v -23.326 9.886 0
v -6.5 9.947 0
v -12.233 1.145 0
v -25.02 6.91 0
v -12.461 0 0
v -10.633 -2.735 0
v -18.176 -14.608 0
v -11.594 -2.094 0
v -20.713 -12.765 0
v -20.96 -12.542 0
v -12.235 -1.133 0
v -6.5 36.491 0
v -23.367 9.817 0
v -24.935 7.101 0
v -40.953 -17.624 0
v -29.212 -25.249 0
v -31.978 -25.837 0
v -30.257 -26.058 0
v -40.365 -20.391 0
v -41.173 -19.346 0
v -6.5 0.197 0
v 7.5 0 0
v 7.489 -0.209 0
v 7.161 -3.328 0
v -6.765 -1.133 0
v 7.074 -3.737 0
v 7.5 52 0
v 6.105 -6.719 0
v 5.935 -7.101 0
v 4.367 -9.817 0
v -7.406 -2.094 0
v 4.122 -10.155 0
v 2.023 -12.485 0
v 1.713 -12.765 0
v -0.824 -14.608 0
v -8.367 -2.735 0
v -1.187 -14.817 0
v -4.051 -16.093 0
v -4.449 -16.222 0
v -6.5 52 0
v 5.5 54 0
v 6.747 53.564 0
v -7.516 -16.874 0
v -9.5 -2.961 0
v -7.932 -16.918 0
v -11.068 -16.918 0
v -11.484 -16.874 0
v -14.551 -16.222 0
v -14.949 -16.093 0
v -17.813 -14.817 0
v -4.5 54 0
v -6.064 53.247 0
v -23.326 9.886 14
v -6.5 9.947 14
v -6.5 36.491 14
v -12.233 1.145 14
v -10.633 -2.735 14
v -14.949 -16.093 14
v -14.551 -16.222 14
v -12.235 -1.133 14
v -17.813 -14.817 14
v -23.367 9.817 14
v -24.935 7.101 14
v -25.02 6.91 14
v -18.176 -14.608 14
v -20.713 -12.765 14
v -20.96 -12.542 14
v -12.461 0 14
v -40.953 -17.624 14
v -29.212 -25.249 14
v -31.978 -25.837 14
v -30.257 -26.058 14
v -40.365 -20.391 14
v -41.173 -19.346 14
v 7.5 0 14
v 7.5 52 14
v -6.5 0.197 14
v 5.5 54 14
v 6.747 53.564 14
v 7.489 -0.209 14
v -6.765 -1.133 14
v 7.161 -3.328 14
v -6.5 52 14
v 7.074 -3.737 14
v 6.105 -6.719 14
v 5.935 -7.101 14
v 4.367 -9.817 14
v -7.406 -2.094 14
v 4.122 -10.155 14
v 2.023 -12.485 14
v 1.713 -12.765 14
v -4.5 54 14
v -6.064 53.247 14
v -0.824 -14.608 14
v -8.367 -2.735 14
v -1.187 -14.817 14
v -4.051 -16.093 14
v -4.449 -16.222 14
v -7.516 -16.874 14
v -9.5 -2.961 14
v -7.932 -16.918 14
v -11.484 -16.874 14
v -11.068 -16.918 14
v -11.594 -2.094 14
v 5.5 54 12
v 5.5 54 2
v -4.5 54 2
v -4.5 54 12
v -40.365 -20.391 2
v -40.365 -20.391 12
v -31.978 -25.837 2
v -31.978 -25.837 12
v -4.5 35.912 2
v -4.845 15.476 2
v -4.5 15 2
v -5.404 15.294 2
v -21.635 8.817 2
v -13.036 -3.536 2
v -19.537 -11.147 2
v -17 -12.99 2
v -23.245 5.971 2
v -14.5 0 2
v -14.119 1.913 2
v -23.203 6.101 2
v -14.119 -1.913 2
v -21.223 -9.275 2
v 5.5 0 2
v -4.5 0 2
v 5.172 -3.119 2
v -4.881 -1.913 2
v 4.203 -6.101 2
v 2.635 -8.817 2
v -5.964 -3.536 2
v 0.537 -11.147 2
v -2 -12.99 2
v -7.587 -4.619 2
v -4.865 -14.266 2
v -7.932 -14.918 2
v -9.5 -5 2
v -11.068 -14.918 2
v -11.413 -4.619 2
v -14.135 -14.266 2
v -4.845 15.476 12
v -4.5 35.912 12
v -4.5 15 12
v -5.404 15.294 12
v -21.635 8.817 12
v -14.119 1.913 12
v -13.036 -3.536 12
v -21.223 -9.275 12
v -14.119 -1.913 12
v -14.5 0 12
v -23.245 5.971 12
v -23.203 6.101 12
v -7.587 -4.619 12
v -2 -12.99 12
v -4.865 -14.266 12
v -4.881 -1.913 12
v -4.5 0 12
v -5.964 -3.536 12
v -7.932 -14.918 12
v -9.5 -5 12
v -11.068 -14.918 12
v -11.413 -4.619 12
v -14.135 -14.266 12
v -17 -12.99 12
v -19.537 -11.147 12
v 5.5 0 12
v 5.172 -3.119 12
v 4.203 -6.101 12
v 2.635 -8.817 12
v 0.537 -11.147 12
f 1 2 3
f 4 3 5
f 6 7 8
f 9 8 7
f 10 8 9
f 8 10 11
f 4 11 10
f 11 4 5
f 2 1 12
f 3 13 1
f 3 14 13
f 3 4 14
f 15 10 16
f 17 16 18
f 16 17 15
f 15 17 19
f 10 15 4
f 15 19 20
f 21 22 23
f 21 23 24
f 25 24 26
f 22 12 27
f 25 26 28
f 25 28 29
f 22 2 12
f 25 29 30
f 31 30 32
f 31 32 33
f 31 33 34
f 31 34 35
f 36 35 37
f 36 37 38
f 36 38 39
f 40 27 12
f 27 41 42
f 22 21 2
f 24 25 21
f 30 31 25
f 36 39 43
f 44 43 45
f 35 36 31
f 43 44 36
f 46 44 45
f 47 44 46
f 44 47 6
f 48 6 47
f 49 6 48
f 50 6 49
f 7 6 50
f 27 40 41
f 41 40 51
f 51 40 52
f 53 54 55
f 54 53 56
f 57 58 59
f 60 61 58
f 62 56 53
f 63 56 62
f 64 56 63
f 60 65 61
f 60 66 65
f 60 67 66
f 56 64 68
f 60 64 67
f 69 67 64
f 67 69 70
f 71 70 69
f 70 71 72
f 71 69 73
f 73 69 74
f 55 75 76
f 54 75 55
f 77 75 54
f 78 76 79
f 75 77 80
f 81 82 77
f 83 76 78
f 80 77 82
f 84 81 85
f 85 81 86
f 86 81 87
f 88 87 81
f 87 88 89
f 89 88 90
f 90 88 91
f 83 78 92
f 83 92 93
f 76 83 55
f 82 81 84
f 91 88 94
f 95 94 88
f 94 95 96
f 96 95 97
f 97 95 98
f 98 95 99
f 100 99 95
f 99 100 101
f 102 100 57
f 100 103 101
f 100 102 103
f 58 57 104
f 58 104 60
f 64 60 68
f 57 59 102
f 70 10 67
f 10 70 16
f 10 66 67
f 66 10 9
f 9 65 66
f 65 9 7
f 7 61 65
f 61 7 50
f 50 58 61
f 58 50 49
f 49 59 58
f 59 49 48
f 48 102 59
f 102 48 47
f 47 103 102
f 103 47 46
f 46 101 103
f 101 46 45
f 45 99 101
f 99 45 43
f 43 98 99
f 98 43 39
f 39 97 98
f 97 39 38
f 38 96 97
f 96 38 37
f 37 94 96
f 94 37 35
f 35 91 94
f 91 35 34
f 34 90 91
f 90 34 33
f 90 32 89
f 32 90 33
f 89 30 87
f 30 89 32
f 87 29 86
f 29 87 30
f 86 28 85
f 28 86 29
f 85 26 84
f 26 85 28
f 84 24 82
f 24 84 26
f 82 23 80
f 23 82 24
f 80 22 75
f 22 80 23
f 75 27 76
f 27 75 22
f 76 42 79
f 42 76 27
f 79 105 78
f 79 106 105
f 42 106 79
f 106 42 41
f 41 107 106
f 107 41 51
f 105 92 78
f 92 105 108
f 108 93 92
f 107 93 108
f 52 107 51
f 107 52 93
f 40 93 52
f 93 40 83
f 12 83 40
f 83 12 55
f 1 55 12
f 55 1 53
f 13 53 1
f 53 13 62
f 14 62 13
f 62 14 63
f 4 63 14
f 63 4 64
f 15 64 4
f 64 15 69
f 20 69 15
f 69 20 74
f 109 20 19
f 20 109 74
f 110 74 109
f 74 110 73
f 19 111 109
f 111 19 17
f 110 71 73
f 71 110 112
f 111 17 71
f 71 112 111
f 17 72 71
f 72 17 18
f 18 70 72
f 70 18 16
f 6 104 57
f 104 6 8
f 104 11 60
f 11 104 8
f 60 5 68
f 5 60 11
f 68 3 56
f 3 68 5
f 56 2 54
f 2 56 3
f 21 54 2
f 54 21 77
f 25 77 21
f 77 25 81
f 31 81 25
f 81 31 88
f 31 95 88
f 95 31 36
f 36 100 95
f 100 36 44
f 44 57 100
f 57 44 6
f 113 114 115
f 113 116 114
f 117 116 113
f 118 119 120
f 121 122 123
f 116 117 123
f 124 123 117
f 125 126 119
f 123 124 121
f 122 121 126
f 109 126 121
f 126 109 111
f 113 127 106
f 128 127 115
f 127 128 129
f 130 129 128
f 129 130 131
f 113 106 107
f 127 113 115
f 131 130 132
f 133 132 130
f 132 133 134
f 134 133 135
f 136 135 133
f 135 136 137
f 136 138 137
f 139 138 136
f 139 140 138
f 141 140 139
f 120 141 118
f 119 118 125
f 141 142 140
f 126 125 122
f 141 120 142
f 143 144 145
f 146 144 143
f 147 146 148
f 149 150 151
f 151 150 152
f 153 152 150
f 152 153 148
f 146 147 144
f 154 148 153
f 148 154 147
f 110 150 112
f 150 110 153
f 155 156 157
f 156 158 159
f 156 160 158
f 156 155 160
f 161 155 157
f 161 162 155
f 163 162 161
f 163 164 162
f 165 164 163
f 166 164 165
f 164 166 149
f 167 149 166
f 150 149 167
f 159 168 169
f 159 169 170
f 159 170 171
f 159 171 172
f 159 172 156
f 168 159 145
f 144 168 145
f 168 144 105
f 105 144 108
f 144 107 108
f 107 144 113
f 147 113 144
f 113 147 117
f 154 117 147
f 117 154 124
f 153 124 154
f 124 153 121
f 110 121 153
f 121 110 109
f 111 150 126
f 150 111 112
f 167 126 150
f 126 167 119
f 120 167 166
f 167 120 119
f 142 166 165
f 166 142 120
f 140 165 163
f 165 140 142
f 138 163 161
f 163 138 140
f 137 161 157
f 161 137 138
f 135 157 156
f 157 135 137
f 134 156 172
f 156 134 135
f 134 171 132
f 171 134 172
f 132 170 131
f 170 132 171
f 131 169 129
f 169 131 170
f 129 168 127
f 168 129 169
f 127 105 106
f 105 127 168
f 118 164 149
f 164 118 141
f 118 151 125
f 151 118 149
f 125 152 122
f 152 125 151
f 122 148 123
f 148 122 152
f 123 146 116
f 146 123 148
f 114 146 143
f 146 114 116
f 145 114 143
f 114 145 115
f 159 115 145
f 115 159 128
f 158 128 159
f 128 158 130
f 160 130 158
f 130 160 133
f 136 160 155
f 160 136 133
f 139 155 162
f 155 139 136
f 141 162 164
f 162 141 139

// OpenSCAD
difference(){
linear_extrude(14)
offset(2)
union(){
difference(){
hull(){
translate([-9.5,0,0])
circle(d=30);
translate([5,50,0])
circle(d=1);
}

hull(){
translate([-9.5,0,0])
circle(d=10);
translate([-5,40-25,0])
circle(d=1);
}
}
translate([-4.5,20,0])
square([10,32]);

translate([-14.55,1,0])
rotate([0,0,-33+180])
square([10,30]);
}


translate([0,0,2])
linear_extrude(10)
union(){
difference(){
hull(){
translate([-9.5,0,0])
circle(d=30);
translate([5,50,0])
circle(d=1);
}

hull(){
translate([-9.5,0,0])
circle(d=10);
translate([-5,40-25,0])
circle(d=1);
}
}
translate([-4.5,20,0])
square([10,32+5]);

translate([-14.55,1,0])
rotate([0,0,-33+180])
square([10,30+5]);
}
}
